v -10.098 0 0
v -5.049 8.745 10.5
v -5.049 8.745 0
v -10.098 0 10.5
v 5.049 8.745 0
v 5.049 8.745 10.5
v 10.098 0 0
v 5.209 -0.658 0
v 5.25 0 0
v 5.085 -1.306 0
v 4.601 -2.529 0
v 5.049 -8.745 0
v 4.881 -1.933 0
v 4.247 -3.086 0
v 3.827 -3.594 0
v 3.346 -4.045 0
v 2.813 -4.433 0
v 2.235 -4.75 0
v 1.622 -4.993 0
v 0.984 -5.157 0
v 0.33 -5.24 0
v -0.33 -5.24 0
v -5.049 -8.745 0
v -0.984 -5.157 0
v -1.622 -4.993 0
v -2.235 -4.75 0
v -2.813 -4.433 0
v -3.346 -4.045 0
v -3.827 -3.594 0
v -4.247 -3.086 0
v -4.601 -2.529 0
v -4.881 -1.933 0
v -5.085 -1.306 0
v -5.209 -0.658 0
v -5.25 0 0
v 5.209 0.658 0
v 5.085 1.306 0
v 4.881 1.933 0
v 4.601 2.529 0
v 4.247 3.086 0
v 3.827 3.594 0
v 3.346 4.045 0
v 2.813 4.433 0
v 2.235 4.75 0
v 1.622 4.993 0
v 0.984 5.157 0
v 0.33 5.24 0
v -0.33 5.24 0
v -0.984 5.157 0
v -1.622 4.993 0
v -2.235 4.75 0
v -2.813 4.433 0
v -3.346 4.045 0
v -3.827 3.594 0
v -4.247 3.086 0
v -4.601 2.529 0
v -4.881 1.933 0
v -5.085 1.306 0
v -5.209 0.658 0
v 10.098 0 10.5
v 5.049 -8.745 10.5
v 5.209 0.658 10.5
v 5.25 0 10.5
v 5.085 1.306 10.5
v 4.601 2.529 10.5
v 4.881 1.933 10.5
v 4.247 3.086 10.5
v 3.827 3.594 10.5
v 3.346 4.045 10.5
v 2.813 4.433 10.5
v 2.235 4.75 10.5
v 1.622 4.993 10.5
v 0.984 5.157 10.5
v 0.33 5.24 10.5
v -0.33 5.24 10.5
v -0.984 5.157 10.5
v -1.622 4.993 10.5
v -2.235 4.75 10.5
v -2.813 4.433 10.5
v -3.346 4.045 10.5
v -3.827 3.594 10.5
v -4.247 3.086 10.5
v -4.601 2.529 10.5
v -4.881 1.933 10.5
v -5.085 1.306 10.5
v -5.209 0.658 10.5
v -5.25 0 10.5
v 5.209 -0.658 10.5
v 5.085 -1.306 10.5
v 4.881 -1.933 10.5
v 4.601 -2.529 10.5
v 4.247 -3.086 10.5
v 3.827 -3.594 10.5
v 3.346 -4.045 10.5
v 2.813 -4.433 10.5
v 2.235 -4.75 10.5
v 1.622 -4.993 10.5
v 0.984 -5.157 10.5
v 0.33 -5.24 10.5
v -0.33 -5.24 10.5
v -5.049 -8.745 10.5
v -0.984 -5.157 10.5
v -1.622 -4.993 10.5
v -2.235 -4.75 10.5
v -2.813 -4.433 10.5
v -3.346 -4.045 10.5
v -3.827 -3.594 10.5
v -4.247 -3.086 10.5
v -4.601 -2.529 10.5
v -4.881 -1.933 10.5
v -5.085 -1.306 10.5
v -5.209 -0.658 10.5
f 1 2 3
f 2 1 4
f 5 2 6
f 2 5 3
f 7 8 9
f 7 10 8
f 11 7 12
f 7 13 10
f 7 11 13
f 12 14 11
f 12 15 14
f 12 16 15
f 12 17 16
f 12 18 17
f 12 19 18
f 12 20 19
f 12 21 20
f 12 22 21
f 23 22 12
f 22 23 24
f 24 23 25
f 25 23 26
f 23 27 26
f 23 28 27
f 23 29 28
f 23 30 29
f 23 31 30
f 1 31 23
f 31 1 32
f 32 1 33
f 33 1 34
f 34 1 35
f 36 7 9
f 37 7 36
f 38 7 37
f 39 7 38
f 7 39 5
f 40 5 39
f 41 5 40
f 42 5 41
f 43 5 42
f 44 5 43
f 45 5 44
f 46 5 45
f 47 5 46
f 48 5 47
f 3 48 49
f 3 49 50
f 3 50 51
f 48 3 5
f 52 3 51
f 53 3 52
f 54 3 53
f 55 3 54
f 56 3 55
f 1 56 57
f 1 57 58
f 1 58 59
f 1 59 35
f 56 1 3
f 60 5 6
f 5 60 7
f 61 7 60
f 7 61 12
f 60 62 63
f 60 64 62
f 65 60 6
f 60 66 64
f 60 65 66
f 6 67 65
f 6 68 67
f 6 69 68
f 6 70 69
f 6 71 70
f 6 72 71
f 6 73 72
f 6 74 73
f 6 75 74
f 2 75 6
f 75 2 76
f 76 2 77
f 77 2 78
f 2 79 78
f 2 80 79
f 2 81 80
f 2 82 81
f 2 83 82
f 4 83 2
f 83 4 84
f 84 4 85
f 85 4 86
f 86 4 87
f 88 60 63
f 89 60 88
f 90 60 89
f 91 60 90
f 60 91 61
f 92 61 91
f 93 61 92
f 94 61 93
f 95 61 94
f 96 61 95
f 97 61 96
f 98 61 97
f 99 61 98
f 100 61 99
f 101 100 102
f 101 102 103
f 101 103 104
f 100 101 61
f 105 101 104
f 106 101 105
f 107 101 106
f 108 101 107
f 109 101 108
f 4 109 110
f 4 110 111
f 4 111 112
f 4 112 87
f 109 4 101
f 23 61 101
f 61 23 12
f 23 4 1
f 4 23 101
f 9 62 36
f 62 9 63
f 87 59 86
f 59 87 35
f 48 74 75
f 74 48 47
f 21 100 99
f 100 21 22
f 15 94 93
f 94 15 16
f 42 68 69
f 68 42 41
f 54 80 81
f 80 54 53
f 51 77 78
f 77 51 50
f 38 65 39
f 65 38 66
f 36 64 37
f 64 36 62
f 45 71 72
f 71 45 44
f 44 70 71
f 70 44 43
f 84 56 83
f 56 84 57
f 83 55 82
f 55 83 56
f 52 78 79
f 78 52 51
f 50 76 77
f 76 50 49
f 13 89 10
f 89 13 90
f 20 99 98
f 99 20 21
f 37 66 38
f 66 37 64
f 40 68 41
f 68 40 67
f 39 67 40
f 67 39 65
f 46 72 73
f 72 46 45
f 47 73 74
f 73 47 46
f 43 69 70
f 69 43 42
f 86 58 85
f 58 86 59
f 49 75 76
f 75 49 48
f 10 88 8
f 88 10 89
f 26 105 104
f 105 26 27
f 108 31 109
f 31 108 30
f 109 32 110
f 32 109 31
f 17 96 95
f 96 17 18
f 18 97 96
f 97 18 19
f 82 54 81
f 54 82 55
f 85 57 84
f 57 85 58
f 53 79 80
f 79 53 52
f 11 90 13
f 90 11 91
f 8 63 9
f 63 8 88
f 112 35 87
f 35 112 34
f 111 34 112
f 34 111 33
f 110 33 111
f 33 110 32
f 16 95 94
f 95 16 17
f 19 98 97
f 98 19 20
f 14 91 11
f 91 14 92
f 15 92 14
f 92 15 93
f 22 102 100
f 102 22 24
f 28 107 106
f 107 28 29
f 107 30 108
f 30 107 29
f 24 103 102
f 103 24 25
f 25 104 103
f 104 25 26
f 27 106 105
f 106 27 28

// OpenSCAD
$fn = 50;


difference() {
	union() {
		translate(v = [0, 0, 0]) {
			rotate(a = [0, 0, 0]) {
				translate(v = [0, 0, 0]) {
					rotate(a = [0, 0, 0]) {
						linear_extrude(height = 10.5000000000) {
							polygon(points = [[10.0975000000, 0.0000000000], [5.0487500000, 8.7446915147], [-5.0487500000, 8.7446915147], [-10.0975000000, 0.0000000000], [-5.0487500000, -8.7446915147], [5.0487500000, -8.7446915147]]);
						}
					}
				}
			}
		}
	}
	union() {
		#translate(v = [0, 0, -10]) {
			rotate(a = [0, 0, 0]) {
				cylinder(h = 100, r = 5.2500000000);
			}
		}
	}
}
